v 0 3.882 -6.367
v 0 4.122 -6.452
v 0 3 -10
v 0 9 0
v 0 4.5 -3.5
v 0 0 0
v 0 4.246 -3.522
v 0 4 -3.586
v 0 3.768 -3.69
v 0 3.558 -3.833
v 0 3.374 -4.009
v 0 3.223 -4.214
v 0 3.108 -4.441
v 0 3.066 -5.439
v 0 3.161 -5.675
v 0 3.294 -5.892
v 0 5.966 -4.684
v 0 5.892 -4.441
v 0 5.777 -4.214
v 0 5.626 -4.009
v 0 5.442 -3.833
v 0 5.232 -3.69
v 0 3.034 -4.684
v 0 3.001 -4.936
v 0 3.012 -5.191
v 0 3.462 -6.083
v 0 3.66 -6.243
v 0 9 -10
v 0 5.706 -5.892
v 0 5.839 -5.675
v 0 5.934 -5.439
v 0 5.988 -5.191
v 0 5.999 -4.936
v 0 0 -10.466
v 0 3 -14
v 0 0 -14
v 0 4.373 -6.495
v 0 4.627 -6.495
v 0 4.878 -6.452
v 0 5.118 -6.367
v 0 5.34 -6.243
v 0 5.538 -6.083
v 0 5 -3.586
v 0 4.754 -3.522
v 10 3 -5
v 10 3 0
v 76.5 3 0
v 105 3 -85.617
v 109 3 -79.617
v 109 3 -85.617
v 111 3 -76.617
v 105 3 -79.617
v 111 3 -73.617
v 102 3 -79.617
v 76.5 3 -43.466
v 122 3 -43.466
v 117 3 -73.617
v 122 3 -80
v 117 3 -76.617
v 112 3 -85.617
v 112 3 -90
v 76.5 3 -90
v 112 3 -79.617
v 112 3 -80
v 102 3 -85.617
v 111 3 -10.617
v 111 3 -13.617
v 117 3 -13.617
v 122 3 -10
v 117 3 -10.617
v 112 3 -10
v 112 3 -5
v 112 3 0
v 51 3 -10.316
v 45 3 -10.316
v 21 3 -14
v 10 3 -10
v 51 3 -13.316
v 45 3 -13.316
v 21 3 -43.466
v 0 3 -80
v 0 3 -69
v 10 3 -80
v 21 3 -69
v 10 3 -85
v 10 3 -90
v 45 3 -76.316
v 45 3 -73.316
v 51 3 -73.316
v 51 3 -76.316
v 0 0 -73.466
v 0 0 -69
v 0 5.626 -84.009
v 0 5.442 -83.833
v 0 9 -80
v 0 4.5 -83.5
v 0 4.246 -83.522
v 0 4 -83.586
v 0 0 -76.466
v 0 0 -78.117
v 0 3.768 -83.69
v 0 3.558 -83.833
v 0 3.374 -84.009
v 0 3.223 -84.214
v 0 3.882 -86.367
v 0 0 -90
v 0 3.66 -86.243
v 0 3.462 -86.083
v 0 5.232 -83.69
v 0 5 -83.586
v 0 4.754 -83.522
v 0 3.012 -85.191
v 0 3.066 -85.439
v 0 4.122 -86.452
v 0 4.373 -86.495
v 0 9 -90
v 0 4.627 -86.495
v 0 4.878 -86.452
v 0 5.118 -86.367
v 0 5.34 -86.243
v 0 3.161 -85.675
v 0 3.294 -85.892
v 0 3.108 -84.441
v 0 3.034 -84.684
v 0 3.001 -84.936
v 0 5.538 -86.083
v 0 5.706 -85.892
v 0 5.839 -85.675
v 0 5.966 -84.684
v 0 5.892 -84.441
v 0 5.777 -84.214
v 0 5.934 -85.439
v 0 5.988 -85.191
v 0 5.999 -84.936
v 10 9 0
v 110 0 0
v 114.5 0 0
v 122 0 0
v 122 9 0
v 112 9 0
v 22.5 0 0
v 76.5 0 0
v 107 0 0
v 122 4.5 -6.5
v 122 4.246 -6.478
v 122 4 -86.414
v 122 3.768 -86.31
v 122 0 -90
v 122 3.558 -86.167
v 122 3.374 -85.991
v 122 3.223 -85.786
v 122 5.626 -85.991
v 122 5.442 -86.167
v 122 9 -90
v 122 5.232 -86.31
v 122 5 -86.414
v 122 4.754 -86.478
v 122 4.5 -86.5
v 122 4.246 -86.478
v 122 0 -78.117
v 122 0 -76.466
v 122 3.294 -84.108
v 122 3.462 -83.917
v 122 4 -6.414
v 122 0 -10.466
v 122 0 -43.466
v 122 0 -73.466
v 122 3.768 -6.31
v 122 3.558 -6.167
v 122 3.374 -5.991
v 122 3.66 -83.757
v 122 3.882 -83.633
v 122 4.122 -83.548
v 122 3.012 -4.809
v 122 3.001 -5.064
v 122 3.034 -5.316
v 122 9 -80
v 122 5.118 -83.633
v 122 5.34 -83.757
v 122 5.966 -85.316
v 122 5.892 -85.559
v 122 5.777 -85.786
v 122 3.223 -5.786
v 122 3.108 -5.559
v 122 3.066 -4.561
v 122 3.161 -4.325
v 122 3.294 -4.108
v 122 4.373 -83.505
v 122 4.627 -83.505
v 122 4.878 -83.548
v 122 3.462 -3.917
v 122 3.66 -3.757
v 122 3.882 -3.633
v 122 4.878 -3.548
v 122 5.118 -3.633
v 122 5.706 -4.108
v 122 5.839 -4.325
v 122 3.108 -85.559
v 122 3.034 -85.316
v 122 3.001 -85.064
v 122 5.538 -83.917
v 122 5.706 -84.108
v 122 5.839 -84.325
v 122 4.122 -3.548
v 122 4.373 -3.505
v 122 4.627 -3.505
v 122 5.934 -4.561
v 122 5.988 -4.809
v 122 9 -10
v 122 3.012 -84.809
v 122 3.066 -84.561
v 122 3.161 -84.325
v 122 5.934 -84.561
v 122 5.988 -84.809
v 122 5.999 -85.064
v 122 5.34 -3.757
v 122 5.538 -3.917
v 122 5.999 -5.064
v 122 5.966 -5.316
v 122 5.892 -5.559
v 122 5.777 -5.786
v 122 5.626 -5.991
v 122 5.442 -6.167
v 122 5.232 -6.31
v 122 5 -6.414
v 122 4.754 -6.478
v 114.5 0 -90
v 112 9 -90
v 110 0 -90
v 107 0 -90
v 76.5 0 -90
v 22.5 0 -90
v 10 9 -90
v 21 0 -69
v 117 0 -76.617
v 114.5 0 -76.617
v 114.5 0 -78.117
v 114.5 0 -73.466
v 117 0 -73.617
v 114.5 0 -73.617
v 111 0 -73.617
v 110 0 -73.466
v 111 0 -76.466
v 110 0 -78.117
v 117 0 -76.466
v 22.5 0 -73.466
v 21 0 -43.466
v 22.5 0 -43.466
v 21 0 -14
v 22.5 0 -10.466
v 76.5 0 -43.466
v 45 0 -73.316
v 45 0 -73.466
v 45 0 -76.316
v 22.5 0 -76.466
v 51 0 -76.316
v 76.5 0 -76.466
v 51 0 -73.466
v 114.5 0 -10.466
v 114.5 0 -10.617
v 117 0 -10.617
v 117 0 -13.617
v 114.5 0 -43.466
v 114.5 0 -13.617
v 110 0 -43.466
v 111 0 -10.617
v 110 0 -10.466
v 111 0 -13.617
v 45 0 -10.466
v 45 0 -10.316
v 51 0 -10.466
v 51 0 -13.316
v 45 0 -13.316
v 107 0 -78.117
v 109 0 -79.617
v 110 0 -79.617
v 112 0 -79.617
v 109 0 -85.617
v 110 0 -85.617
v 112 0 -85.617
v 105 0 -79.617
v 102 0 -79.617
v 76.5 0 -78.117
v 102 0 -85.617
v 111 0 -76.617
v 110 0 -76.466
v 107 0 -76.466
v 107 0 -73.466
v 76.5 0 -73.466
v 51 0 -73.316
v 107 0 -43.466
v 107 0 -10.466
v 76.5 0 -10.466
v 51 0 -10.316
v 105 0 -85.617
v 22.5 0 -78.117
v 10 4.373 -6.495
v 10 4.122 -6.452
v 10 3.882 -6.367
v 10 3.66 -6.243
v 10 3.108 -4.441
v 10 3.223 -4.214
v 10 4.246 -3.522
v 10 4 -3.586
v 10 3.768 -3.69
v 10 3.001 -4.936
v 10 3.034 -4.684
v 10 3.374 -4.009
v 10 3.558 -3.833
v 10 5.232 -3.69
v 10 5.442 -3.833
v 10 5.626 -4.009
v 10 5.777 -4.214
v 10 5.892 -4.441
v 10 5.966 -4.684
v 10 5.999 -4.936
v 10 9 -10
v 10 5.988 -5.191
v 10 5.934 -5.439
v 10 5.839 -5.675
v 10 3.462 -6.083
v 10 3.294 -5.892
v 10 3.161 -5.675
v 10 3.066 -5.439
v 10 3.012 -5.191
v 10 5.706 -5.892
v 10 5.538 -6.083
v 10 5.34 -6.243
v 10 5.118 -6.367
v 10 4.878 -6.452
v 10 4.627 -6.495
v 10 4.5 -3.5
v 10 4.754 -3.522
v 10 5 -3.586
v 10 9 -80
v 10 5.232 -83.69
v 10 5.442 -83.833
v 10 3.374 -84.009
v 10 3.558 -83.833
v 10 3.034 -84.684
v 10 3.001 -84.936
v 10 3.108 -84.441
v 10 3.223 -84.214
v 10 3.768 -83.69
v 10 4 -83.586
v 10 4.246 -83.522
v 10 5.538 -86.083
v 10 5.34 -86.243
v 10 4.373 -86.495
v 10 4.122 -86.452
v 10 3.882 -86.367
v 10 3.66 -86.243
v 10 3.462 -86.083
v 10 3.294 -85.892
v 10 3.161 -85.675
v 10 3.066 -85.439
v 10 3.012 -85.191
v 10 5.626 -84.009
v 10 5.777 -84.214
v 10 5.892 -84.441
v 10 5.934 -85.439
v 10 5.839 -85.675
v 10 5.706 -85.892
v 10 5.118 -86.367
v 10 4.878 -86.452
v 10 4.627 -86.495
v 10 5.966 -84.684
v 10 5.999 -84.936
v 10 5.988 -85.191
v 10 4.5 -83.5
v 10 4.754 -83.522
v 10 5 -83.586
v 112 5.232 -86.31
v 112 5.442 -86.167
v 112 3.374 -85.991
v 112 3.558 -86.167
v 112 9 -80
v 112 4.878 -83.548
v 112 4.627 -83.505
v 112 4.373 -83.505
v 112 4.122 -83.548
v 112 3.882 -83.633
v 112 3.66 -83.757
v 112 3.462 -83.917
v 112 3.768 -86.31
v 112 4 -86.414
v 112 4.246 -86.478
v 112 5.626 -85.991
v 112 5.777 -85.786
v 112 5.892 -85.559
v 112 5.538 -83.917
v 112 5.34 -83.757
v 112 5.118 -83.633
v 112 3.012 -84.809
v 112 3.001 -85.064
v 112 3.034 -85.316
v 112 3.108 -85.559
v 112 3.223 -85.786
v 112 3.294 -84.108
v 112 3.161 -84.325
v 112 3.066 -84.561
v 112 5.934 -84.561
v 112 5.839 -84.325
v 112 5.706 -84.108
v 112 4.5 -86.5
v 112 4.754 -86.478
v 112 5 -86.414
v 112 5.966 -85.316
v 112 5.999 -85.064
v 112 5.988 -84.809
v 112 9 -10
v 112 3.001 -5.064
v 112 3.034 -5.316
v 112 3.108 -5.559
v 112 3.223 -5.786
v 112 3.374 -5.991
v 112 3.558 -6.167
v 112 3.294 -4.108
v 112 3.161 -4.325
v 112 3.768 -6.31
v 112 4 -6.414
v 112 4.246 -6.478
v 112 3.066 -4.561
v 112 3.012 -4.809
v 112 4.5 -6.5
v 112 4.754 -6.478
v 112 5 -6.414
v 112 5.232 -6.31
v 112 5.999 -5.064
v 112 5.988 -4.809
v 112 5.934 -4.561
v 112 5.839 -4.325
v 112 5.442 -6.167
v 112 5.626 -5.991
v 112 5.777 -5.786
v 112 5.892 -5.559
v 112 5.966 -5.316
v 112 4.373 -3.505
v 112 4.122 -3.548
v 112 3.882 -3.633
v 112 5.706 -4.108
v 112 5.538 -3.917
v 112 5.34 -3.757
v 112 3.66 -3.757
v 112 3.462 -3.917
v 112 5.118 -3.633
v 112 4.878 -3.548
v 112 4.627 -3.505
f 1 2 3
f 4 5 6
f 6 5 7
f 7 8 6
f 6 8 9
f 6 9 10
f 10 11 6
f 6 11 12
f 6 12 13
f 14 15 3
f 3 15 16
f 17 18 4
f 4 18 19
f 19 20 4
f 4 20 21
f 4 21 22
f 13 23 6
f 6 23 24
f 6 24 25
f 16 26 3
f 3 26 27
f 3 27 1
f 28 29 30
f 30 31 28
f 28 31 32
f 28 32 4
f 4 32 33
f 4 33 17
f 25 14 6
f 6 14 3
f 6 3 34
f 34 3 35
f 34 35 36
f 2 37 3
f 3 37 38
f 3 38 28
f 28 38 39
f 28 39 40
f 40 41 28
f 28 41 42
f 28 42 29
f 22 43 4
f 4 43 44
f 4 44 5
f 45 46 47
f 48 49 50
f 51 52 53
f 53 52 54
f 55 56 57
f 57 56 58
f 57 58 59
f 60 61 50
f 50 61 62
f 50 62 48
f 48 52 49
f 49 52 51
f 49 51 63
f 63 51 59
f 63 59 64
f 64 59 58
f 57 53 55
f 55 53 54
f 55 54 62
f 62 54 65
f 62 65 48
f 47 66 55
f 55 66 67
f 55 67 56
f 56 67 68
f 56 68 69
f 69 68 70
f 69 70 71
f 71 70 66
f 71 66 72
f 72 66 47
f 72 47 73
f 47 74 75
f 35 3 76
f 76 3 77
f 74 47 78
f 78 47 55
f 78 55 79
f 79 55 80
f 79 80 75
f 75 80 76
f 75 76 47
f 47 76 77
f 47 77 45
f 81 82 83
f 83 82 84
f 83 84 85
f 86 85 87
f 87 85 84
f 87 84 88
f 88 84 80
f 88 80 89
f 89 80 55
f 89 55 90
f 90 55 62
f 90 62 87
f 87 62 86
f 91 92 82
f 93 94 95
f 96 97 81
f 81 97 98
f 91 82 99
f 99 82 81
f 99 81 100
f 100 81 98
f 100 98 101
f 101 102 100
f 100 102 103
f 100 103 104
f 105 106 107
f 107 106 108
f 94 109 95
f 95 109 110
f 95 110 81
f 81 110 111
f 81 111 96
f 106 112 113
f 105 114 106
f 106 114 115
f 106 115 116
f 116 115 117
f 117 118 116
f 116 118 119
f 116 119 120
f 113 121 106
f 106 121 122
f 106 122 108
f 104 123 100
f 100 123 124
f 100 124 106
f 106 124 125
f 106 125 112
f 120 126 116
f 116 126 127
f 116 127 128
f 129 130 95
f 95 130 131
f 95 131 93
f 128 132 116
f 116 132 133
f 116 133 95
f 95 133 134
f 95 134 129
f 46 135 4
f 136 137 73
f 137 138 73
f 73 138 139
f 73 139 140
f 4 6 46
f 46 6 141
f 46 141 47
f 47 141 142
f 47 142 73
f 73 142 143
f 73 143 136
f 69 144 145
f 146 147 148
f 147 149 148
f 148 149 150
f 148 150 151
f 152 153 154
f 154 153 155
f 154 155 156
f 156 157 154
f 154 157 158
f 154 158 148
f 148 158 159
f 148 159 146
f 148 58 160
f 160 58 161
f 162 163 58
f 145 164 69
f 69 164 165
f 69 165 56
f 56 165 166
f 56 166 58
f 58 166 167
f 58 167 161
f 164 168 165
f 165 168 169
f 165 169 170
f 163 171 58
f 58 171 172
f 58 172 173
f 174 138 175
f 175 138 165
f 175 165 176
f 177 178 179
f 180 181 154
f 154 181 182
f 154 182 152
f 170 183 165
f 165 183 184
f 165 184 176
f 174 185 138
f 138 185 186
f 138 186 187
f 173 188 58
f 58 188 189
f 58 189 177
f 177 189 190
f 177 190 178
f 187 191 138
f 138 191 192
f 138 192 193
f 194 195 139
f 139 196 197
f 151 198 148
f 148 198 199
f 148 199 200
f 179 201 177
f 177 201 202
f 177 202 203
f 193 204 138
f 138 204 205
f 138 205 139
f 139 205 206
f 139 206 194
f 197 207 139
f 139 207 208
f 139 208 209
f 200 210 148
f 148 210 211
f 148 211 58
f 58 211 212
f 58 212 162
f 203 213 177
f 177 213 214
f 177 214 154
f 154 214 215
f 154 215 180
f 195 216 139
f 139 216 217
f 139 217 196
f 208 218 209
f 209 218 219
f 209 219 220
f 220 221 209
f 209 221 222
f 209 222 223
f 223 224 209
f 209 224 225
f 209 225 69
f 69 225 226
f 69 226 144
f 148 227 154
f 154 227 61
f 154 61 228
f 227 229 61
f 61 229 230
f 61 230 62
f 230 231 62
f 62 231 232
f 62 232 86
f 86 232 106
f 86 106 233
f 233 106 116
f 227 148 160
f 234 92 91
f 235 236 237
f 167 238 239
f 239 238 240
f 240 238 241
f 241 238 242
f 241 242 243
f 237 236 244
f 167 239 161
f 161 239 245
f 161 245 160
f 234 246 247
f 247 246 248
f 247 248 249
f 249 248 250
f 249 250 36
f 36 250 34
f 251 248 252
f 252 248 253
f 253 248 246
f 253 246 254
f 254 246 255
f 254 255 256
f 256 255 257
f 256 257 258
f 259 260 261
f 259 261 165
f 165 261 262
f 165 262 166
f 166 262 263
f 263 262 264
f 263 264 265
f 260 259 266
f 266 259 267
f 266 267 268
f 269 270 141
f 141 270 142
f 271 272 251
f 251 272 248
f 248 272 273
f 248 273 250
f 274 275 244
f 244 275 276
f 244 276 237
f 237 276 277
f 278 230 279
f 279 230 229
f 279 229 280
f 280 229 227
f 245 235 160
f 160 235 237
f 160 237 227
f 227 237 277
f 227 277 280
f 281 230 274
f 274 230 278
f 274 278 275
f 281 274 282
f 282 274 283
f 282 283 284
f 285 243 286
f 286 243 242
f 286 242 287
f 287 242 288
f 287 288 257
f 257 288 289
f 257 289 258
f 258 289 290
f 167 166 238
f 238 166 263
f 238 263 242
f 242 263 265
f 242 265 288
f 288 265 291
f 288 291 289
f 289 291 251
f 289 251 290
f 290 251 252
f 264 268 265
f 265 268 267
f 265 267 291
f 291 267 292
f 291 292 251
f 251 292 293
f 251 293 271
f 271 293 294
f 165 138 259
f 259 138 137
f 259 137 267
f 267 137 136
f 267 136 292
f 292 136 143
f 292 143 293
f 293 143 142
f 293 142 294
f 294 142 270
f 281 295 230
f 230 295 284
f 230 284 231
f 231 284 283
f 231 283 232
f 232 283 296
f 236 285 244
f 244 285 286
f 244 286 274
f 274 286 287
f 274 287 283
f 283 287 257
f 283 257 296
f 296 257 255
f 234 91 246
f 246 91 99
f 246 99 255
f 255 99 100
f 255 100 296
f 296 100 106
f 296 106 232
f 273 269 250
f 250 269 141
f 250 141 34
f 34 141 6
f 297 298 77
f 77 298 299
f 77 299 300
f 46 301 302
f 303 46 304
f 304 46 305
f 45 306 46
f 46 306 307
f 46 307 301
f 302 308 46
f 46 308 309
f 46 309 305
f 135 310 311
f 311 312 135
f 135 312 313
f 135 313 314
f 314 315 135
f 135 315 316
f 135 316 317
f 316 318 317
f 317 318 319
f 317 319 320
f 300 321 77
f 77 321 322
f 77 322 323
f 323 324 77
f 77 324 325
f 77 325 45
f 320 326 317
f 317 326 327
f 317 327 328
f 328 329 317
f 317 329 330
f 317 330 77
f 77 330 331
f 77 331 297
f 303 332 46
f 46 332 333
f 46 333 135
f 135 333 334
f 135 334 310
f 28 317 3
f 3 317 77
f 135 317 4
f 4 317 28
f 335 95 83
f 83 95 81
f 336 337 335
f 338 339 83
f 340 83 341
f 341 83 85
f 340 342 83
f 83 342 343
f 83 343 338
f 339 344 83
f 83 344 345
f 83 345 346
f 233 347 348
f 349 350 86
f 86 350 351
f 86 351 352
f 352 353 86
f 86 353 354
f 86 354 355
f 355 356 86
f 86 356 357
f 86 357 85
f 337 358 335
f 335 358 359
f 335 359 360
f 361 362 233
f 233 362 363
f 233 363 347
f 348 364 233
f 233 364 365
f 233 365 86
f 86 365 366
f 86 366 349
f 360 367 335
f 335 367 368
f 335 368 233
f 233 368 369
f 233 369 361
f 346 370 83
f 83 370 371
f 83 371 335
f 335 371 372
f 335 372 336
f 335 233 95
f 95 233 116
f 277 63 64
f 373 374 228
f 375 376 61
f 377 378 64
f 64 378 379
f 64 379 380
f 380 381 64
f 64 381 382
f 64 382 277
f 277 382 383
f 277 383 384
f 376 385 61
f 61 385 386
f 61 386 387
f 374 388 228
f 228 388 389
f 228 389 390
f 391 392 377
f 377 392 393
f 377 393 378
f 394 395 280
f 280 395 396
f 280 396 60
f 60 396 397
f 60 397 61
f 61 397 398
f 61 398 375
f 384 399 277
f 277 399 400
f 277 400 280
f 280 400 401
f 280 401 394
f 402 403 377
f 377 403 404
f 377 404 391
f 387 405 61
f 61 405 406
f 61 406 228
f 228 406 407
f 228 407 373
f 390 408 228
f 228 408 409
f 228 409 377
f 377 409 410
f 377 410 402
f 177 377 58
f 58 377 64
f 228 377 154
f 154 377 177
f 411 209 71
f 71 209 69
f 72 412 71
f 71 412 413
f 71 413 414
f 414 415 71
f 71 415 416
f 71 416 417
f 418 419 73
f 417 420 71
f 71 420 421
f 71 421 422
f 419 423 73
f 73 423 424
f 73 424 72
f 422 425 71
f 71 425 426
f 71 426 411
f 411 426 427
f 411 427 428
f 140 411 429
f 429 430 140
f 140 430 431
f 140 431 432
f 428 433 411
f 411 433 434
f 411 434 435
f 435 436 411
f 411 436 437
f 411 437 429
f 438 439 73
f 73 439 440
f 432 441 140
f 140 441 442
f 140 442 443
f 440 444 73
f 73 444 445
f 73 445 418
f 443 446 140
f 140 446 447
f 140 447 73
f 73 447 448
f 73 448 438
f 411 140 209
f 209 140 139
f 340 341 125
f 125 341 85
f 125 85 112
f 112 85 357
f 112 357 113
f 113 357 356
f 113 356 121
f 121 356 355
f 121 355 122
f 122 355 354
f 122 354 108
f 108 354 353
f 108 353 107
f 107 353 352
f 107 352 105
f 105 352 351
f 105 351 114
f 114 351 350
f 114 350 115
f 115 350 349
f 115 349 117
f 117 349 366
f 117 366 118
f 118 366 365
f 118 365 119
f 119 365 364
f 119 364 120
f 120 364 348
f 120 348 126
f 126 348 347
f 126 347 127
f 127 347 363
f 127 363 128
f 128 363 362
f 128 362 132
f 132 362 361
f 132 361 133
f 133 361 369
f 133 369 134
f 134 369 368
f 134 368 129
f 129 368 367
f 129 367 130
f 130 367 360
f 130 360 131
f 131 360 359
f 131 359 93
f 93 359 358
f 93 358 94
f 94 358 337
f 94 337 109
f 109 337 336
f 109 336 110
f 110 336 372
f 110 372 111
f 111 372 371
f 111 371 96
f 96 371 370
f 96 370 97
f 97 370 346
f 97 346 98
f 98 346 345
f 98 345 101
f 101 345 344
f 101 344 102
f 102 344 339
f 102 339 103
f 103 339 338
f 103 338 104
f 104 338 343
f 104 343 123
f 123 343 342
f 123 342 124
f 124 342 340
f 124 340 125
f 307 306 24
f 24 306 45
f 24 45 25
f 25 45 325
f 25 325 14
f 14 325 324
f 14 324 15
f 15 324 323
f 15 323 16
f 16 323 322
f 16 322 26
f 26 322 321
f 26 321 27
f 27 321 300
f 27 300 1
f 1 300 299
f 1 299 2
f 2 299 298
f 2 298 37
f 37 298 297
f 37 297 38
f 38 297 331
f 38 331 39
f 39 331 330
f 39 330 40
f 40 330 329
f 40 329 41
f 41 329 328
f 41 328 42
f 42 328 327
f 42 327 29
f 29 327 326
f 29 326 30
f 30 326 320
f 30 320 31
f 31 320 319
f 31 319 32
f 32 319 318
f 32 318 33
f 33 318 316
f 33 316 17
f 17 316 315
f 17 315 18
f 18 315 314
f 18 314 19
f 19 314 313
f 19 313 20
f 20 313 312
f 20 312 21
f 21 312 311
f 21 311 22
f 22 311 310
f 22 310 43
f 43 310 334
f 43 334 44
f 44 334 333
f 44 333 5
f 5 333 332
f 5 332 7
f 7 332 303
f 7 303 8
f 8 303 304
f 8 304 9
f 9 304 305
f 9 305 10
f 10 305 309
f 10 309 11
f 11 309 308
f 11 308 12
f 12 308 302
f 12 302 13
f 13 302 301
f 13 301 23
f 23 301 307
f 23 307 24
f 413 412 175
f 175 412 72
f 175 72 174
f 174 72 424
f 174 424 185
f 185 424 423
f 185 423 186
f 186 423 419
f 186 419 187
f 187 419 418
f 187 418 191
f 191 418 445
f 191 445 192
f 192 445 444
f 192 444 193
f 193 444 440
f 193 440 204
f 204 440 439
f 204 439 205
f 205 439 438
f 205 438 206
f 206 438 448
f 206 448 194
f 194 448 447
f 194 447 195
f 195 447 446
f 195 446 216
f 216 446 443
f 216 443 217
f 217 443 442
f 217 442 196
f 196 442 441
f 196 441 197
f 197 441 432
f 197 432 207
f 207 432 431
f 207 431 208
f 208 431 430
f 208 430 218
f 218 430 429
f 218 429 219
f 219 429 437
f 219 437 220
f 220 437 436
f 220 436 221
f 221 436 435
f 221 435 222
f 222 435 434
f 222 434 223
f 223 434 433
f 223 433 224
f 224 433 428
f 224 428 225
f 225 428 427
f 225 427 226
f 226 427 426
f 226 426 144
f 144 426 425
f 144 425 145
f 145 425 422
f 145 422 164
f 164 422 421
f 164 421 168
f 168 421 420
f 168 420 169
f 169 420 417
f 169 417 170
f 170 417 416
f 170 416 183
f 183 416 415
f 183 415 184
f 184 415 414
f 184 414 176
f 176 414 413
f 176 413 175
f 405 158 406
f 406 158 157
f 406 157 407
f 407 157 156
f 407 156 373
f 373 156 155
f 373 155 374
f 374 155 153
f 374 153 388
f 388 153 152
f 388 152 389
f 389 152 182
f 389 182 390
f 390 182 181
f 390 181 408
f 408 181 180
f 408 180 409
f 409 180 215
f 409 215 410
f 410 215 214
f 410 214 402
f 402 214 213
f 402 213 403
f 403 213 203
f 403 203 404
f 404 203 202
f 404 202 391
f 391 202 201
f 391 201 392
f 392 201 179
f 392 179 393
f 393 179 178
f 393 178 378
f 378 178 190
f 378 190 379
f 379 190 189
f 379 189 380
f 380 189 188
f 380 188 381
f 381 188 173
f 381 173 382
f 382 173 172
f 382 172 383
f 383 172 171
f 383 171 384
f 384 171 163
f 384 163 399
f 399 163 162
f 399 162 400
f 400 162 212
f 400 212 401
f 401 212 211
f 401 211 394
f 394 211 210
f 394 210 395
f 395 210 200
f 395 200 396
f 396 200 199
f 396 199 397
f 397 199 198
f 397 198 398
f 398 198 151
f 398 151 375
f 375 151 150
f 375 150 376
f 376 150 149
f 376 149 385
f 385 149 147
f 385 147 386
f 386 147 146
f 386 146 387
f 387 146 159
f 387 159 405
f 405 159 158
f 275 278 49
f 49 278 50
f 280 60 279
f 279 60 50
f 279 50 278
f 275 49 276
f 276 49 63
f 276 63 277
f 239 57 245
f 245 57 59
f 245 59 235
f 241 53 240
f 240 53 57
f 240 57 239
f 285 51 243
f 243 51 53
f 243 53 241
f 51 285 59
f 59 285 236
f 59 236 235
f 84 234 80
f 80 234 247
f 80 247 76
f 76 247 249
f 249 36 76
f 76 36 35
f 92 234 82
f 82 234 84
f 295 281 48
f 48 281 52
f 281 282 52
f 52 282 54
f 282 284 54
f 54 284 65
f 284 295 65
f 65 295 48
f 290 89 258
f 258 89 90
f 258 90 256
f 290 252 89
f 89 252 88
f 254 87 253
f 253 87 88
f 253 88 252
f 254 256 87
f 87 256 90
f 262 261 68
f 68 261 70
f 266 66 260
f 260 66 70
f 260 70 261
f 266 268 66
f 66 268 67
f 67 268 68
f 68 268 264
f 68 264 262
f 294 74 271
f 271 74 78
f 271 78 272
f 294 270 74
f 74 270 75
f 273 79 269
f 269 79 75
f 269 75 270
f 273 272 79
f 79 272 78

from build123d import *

# Parameters (mm, degrees)
SKETCH1_W           = 122
SKETCH1_H           = 90
BOSS_EXTRUDE1_DEPTH = 3
SKETCH2_W           = 10
SKETCH2_H           = 10
BOSS_EXTRUDE2_DEPTH = 6
CUT_EXTRUDE2_REACH  = 153.872
SKETCH4_R           = 1.5
CUT_EXTRUDE3_REACH  = 153.872
SKETCH5_R           = 1.5
SKETCH7_W           = 6
SKETCH7_H           = 3
SKETCH7_W_2         = 3
SKETCH7_H_2         = 6
SKETCH7_W_3         = 21
SKETCH7_H_3         = 55
CUT_EXTRUDE4_DEPTH  = 152.7234326


with BuildPart() as part:
    # Sketch1 → Boss-Extrude1 (new body)
    with BuildSketch(Plane(origin=(0, 0, 0), x_dir=(1, 0, 0), z_dir=(0, 1, 0))):
        with Locations((61, 45)):
            Rectangle(SKETCH1_W, SKETCH1_H)
    extrude(amount=BOSS_EXTRUDE1_DEPTH)

    # Sketch2 → Boss-Extrude2 (add)
    with BuildSketch(Plane(origin=(0, 3, 0), x_dir=(1, 0, 0), z_dir=(0, 1, 0))):
        Polygon((0, 0), (10, 0), (10, 5.706645394), (10, 10), (7.781127404, 10), (0, 10), align=None)
        with Locations((5, 85)):
            Rectangle(SKETCH2_W, SKETCH2_H)
        with Locations((117, 85)):
            Rectangle(SKETCH2_W, SKETCH2_H)
        with Locations((117, 5)):
            Rectangle(SKETCH2_W, SKETCH2_H)
    extrude(amount=BOSS_EXTRUDE2_DEPTH)

    # Sketch4 → Cut-Extrude2 (cut, up to next)
    with BuildSketch(Plane.ZY, mode=Mode.PRIVATE) as cut_extrude2_sk1:
        with Locations((-85, 4.5)):
            Circle(SKETCH4_R)
    cut_extrude2_tool1 = extrude(cut_extrude2_sk1.sketch, amount=-CUT_EXTRUDE2_REACH, mode=Mode.PRIVATE) & part.part
    # Sketch4 → Cut-Extrude2 (cut, up to next)
    with BuildSketch(Plane.ZY, mode=Mode.PRIVATE) as cut_extrude2_sk2:
        with Locations((-5, 4.5)):
            Circle(SKETCH4_R)
    cut_extrude2_tool2 = extrude(cut_extrude2_sk2.sketch, amount=-CUT_EXTRUDE2_REACH, mode=Mode.PRIVATE) & part.part
    add(cut_extrude2_tool1.solids().sort_by_distance((0, 4.5, -85))[0], mode=Mode.SUBTRACT)
    add(cut_extrude2_tool2.solids().sort_by_distance((0, 4.5, -5))[0], mode=Mode.SUBTRACT)

    # Sketch5 → Cut-Extrude3 (cut, up to next)
    with BuildSketch(Plane(origin=(122, 0, 0), x_dir=(0, 0, -1), z_dir=(1, 0, 0)), mode=Mode.PRIVATE) as cut_extrude3_sk1:
        with Locations(Location((85, 4.5, 0), (0, 0, 180))):
            Circle(SKETCH5_R)
    cut_extrude3_tool1 = extrude(cut_extrude3_sk1.sketch, amount=-CUT_EXTRUDE3_REACH, mode=Mode.PRIVATE) & part.part
    # Sketch5 → Cut-Extrude3 (cut, up to next)
    with BuildSketch(Plane(origin=(122, 0, 0), x_dir=(0, 0, -1), z_dir=(1, 0, 0)), mode=Mode.PRIVATE) as cut_extrude3_sk2:
        with Locations(Location((5, 4.5, 0), (0, 0, 180))):
            Circle(SKETCH5_R)
    cut_extrude3_tool2 = extrude(cut_extrude3_sk2.sketch, amount=-CUT_EXTRUDE3_REACH, mode=Mode.PRIVATE) & part.part
    add(cut_extrude3_tool1.solids().sort_by_distance((122, 4.5, -85))[0], mode=Mode.SUBTRACT)
    add(cut_extrude3_tool2.solids().sort_by_distance((122, 4.5, -5))[0], mode=Mode.SUBTRACT)

    # Sketch7 → Cut-Extrude4 (cut, through all)
    with BuildSketch(Plane(origin=(0, 3, 0), x_dir=(1, 0, 0), z_dir=(0, 1, 0))):
        with Locations((48, 74.815523004)):
            Rectangle(SKETCH7_W, SKETCH7_H)
        with Locations((114, 75.116921084)):
            Rectangle(SKETCH7_W, SKETCH7_H)
        with Locations((48, 11.815523004)):
            Rectangle(SKETCH7_W, SKETCH7_H)
        with Locations((114, 12.116921084)):
            Rectangle(SKETCH7_W, SKETCH7_H)
        with Locations((110.5, 82.616921084)):
            Rectangle(SKETCH7_W_2, SKETCH7_H_2)
        with Locations((103.5, 82.616921084)):
            Rectangle(SKETCH7_W_2, SKETCH7_H_2)
        with Locations((10.5, 41.5)):
            Rectangle(SKETCH7_W_3, SKETCH7_H_3)
    extrude(amount=-CUT_EXTRUDE4_DEPTH, mode=Mode.SUBTRACT)


solid = part.part
